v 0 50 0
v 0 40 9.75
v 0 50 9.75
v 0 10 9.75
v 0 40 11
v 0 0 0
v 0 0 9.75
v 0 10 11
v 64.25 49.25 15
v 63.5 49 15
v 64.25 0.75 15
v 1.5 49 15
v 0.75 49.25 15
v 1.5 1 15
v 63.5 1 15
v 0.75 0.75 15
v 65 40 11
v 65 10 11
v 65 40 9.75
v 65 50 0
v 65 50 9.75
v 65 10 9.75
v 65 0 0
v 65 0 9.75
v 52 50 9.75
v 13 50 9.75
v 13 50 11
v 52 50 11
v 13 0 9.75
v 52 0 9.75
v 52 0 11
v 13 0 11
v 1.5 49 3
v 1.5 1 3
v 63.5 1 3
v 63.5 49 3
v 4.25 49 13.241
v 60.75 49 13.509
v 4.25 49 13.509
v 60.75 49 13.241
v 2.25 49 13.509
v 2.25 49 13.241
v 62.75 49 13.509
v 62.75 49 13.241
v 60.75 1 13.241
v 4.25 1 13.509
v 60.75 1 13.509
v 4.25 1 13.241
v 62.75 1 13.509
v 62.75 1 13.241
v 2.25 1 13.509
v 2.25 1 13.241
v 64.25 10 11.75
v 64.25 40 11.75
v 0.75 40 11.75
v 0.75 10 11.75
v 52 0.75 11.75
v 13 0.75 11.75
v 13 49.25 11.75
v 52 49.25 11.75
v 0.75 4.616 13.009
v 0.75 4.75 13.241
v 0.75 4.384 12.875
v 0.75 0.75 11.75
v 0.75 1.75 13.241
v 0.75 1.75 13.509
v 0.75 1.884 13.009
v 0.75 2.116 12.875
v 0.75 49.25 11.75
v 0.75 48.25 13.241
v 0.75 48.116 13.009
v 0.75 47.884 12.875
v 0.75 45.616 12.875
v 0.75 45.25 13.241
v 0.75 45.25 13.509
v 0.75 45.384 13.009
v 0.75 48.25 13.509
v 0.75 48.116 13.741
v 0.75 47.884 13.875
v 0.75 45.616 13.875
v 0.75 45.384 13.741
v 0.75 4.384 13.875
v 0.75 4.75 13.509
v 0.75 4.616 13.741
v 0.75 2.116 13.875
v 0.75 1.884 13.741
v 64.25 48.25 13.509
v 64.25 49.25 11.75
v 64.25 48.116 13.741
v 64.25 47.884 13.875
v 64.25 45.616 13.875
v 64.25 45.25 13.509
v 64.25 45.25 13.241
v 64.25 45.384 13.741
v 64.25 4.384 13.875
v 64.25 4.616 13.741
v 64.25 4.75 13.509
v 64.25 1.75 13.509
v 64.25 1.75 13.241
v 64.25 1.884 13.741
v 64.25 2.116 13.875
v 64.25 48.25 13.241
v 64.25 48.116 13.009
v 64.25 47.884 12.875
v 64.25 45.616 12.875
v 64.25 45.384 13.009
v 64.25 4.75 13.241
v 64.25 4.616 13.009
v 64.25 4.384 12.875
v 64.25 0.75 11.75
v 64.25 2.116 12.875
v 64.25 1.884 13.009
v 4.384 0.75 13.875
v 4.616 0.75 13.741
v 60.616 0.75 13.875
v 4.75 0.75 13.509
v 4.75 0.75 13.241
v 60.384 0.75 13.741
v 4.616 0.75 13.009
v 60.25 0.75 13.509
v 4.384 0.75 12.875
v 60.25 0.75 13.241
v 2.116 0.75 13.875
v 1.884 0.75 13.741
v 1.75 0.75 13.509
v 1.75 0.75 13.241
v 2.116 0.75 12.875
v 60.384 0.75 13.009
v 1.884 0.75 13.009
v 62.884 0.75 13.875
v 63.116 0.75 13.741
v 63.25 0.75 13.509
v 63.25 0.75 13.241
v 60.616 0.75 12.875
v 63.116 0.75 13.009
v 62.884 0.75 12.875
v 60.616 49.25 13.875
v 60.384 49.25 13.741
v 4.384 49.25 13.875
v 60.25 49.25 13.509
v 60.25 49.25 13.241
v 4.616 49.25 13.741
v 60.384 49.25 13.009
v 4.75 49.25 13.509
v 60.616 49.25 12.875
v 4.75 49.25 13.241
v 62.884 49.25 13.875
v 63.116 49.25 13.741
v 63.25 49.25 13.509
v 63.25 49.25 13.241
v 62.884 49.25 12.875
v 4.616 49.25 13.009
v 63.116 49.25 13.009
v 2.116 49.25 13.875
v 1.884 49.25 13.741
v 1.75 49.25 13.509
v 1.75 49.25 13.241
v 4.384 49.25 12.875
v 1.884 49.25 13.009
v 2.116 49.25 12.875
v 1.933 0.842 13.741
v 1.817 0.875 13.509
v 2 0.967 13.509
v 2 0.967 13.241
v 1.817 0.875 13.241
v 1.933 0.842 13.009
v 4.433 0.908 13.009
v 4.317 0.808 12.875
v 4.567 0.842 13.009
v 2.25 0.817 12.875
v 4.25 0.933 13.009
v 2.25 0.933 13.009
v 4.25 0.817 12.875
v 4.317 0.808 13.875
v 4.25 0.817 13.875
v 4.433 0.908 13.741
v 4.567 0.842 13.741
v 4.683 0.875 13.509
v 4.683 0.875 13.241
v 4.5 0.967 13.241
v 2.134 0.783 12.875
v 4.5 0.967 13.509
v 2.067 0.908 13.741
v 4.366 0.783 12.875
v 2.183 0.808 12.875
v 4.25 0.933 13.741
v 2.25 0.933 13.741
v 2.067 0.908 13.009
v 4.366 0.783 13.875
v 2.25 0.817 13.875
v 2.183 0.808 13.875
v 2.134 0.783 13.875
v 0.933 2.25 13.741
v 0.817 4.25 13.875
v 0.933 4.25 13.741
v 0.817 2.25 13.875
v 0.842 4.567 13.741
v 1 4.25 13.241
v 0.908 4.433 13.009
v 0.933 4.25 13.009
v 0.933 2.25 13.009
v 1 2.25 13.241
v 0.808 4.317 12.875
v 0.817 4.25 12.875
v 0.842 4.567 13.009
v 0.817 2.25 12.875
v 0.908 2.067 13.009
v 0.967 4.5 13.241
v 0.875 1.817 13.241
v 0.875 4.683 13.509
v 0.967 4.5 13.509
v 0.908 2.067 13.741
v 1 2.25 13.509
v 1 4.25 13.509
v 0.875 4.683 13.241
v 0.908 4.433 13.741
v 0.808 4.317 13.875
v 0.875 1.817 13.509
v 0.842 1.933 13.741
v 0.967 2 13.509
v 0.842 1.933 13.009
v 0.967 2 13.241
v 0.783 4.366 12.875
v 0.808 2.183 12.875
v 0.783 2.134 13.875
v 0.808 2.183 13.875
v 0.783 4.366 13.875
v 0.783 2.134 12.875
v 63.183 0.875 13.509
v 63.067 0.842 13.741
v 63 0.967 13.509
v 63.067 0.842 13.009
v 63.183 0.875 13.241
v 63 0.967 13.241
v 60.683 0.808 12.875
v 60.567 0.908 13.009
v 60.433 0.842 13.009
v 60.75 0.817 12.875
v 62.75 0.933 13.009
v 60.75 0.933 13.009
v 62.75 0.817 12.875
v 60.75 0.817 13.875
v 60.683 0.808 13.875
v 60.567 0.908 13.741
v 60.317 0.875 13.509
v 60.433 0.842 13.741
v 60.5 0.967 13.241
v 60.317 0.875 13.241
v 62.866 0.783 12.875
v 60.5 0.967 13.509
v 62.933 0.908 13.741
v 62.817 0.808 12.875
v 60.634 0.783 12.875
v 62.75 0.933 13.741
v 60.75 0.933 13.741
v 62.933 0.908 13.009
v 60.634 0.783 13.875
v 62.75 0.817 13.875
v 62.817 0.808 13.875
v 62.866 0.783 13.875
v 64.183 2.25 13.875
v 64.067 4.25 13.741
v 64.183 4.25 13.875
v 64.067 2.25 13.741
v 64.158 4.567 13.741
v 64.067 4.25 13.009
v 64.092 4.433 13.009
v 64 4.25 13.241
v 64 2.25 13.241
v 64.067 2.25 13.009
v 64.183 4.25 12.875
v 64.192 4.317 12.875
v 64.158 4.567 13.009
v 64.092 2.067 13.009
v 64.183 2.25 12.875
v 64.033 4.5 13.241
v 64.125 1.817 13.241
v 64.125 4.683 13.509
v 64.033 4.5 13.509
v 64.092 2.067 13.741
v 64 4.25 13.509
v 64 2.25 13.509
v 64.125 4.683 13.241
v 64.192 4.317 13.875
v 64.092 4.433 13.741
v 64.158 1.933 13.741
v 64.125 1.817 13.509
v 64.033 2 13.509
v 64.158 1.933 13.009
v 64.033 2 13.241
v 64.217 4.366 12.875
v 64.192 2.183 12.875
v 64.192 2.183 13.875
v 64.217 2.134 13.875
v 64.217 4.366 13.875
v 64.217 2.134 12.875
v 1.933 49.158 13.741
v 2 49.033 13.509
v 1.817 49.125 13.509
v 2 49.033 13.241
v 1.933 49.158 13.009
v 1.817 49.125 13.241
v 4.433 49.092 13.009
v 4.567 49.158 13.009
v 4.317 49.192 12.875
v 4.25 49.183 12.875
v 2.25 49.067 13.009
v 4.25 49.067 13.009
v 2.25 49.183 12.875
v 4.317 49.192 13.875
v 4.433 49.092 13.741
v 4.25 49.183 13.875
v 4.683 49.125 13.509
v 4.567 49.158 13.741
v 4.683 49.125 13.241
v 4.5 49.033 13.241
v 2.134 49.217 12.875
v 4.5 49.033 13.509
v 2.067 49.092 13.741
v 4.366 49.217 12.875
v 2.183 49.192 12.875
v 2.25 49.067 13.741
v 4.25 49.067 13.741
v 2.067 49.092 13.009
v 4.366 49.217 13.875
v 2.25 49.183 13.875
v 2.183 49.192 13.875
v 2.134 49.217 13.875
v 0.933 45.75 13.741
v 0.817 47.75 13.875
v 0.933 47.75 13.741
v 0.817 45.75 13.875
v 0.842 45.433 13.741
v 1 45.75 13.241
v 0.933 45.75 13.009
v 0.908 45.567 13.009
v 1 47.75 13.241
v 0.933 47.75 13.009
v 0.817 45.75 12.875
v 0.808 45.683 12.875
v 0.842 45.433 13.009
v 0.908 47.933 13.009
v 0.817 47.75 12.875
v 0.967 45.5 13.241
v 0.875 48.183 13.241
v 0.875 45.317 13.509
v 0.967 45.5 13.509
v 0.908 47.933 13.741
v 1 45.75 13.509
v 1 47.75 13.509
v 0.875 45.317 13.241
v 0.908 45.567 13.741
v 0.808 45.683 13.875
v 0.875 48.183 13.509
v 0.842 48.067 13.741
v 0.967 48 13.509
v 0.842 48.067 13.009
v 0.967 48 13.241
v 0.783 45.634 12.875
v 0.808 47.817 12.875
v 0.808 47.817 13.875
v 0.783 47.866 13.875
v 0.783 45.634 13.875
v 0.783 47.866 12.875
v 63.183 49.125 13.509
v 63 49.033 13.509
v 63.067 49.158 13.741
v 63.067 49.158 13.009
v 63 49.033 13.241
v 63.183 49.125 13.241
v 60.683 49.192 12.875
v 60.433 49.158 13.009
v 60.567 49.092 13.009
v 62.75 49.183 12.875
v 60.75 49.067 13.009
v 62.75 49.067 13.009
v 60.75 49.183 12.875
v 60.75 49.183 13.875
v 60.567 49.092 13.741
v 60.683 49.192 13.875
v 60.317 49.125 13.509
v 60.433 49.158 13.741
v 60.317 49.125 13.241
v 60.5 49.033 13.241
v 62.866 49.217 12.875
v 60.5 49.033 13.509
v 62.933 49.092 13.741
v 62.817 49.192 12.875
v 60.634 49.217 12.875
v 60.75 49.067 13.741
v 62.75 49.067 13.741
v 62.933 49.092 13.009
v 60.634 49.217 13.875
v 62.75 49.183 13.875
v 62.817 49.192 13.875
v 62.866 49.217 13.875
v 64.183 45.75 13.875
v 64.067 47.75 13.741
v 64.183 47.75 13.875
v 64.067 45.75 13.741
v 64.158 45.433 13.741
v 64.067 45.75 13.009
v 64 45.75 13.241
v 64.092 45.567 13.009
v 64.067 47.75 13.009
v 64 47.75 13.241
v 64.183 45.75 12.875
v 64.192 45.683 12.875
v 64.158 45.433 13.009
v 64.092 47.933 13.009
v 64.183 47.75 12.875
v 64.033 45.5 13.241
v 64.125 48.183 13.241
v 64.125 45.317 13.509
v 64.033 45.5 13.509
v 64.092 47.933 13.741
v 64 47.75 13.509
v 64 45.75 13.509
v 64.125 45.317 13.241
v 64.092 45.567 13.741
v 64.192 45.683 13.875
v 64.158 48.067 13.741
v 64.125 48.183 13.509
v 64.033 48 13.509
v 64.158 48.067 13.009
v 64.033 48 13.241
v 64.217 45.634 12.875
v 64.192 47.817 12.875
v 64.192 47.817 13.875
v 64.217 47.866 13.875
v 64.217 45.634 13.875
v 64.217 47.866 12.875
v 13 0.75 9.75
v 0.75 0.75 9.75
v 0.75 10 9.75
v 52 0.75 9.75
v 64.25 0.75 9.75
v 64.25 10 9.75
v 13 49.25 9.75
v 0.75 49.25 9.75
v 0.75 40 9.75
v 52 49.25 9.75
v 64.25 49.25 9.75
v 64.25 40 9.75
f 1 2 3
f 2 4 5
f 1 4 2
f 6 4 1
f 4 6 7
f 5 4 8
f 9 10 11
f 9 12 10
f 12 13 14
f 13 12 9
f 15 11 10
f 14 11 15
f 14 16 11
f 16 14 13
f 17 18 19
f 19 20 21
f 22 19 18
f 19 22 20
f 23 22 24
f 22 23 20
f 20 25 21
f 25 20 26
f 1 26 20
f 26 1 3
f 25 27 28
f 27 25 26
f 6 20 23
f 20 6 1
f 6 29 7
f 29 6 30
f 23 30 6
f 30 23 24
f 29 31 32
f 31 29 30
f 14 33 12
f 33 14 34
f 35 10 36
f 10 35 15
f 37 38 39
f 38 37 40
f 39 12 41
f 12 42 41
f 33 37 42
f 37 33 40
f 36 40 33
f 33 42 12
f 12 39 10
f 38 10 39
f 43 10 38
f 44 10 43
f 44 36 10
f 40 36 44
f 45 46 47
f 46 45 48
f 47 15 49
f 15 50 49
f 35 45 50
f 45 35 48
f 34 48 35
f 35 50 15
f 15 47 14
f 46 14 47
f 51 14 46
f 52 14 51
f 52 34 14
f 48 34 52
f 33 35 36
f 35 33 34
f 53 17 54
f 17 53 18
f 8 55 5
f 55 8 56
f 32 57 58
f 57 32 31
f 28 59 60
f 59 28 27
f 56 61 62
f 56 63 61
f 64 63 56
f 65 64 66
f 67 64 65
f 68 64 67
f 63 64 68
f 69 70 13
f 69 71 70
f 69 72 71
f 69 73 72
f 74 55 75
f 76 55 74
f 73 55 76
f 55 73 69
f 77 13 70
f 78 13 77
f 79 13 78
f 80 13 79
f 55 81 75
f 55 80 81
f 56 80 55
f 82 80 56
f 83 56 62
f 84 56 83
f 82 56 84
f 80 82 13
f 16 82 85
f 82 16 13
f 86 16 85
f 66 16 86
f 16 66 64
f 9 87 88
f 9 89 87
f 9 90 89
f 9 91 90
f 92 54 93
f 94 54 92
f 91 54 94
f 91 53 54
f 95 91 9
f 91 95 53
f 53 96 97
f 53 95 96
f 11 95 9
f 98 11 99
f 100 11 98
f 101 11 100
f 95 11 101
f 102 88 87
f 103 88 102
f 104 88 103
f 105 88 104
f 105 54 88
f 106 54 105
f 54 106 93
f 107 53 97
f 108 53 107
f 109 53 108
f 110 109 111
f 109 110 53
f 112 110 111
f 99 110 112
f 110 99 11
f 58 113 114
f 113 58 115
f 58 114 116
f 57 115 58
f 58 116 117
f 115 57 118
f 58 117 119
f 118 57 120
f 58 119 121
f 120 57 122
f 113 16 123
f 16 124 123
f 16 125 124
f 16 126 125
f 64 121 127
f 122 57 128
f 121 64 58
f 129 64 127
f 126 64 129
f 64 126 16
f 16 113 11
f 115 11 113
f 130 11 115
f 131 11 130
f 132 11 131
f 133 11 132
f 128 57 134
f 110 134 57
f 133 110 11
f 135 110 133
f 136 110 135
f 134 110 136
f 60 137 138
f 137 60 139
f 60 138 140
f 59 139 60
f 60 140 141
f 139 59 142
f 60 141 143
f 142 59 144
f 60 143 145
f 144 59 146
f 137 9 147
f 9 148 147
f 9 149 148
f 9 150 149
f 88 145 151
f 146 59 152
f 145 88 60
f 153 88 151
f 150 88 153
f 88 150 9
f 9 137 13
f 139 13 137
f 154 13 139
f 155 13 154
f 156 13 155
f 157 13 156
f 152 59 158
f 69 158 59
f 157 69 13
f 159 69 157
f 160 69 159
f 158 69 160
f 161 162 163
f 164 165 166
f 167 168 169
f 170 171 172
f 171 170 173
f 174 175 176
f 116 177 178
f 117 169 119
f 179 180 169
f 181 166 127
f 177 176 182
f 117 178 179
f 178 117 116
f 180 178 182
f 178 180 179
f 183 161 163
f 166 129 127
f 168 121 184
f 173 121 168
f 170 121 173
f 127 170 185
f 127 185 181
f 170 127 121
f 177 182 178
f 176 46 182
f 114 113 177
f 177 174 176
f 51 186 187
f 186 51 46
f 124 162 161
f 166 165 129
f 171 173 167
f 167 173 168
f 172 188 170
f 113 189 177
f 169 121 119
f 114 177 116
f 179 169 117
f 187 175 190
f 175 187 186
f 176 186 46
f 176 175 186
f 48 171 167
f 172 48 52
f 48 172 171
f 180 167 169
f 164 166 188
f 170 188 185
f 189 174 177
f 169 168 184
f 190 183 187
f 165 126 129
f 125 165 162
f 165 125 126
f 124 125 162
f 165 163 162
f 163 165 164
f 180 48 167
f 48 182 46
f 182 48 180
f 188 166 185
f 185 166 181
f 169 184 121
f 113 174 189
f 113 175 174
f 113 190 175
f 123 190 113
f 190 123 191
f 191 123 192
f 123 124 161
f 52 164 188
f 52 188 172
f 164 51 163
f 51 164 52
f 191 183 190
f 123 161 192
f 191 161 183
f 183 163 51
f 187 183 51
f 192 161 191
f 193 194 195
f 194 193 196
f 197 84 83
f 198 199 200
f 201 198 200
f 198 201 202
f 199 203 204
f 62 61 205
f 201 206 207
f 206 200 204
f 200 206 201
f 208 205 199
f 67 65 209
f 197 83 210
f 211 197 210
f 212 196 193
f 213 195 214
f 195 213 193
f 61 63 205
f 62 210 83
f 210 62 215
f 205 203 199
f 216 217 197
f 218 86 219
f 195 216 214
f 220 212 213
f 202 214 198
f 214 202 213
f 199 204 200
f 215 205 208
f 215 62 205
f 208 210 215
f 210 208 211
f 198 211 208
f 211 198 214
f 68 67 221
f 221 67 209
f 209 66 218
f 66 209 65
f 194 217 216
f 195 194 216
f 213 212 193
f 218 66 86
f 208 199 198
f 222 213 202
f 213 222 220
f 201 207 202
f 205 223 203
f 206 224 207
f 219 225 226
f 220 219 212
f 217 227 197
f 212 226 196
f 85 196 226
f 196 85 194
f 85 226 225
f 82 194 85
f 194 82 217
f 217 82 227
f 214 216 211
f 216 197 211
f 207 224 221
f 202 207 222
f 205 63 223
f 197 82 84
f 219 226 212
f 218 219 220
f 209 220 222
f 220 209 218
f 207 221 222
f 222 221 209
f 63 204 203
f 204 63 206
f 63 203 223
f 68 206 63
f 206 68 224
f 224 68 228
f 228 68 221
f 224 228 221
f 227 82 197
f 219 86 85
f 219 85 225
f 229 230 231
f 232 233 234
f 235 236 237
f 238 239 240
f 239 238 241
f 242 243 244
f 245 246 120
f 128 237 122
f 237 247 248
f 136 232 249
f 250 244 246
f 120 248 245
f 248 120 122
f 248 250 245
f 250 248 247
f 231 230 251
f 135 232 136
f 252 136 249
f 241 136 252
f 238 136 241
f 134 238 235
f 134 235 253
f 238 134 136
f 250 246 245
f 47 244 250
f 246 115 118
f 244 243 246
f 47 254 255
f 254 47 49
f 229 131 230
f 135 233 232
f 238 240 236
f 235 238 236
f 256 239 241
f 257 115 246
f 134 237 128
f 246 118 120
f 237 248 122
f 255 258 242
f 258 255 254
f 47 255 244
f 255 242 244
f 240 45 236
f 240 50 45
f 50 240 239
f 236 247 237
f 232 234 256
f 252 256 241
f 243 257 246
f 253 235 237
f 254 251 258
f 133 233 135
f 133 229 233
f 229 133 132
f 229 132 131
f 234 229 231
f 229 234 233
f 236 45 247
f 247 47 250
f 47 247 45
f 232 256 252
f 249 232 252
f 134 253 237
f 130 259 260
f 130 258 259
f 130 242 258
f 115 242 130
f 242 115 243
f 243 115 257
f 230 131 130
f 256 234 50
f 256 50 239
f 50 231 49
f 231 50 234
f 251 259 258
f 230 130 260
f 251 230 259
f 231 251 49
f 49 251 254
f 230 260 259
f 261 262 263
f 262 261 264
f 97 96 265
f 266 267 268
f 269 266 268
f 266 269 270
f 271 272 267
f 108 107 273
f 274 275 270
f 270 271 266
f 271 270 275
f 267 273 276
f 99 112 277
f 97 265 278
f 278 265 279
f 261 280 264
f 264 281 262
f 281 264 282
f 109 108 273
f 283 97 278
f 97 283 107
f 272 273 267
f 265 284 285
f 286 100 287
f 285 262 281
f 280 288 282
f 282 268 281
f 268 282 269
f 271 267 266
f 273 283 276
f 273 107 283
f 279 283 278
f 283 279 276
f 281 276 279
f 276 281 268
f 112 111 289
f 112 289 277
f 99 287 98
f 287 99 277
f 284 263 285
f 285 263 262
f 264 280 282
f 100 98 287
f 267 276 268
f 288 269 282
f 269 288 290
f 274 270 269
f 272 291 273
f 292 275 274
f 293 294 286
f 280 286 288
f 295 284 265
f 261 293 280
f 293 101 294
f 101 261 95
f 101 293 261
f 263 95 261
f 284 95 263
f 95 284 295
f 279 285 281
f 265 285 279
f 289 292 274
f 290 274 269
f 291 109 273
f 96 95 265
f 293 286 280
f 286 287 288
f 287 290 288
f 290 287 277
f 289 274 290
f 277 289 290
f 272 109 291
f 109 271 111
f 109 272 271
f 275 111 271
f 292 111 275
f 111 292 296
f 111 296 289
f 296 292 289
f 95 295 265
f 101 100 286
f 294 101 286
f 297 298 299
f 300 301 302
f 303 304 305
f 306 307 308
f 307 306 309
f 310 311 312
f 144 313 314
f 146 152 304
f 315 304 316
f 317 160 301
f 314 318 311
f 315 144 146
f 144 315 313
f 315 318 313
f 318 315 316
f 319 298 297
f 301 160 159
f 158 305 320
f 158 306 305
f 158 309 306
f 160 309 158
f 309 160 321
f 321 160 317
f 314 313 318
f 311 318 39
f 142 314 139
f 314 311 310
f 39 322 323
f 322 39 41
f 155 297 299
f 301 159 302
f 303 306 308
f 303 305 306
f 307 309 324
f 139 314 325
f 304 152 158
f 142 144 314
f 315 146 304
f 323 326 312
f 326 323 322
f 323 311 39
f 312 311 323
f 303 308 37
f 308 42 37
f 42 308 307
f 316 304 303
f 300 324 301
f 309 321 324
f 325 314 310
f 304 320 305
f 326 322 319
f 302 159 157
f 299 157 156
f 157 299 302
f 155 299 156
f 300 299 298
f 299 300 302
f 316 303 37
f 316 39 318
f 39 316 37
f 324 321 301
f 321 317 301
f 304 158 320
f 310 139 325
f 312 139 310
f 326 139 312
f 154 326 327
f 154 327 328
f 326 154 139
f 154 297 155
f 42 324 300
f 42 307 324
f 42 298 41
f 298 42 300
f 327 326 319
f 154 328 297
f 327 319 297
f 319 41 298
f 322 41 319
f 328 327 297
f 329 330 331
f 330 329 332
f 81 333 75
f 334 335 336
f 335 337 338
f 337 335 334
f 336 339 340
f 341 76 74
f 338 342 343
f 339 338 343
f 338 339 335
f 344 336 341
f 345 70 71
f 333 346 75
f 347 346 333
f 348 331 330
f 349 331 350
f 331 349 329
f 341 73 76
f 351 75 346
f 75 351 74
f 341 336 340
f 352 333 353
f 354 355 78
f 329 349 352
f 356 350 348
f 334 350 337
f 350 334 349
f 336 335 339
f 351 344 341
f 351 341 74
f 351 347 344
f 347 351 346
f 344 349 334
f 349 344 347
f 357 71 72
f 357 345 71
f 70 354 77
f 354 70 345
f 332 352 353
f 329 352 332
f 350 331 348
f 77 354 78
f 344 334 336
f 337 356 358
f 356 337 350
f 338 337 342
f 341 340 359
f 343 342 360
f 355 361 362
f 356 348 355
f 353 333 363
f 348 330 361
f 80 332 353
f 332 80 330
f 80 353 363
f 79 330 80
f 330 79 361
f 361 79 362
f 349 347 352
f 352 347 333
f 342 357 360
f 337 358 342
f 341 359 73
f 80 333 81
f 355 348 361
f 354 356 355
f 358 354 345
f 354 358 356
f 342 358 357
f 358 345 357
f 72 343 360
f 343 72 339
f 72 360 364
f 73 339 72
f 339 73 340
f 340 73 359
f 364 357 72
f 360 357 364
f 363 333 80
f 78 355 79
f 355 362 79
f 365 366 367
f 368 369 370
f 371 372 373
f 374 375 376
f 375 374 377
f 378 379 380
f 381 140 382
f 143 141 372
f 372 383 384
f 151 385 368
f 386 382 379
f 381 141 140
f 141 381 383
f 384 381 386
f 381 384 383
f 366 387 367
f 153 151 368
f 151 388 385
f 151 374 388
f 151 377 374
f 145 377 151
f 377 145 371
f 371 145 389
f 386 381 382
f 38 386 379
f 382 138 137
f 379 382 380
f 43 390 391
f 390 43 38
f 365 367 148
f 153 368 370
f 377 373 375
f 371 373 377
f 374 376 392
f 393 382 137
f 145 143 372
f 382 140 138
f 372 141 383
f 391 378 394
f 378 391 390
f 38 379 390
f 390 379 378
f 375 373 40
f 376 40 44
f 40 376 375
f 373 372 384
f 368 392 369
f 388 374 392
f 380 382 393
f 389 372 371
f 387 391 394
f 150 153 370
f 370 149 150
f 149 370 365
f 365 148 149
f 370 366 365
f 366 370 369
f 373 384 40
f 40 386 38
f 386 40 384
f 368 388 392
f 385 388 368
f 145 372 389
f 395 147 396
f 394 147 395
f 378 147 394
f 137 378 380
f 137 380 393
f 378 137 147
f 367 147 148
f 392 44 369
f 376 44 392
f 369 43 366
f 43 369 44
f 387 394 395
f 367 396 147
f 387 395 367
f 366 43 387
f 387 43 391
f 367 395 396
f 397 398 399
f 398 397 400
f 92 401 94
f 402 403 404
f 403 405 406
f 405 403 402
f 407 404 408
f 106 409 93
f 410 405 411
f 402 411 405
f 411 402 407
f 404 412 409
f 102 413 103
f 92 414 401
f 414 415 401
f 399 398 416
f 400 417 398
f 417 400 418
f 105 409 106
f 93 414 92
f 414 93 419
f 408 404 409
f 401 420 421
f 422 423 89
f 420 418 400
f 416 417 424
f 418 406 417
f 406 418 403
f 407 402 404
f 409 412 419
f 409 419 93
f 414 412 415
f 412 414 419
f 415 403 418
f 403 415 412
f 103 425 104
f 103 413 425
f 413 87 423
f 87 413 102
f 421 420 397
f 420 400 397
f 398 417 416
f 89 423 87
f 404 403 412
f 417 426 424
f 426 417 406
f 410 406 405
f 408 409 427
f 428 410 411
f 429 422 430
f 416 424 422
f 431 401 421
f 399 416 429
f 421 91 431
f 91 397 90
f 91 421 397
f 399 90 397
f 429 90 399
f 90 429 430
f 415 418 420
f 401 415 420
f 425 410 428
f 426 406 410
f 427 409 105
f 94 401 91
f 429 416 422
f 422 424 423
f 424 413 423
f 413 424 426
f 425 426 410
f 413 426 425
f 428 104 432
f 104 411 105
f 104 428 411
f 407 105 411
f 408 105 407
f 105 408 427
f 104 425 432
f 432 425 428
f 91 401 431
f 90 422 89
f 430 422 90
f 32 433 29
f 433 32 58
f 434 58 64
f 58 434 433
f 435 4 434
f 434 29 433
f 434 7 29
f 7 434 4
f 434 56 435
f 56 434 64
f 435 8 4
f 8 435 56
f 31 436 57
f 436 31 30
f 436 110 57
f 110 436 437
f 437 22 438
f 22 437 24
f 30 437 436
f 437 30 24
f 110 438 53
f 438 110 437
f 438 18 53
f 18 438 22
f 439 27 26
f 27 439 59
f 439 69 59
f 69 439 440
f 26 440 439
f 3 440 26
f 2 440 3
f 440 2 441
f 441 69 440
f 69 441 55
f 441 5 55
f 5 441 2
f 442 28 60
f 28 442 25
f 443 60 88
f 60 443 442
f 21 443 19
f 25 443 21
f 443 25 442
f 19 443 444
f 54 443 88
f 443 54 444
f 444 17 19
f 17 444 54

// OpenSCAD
include <boardgame_insert_toolkit_lib.2.scad>;

// determines whether lids are output.
g_b_print_lid = false;

// determines whether boxes are output.
g_b_print_box = true; 

// Focus on one box
// g_isolated_print_box = ""; 

// Used to visualize how all of the boxes fit together. 
g_b_visualization = false;          
        
// this is the outer wall thickness. 
//Default = 1.5mm
g_wall_thickness = 1.5;

// The tolerance value is extra space put between planes of the lid and box that fit together.
// Increase the tolerance to loosen the fit and decrease it to tighten it.
//
// Note that the tolerance is applied exclusively to the lid.
// So if the lid is too tight or too loose, change this value ( up for looser fit, down for tighter fit ) and 
// you only need to reprint the lid.
// 
// The exception is the stackable box, where the bottom of the box is the lid of the box below,
// in which case the tolerance also affects that box bottom.
//
g_tolerance = 0.15;

// This adjusts the position of the lid detents downward. 
// The larger the value, the bigger the gap between the lid and the box.
g_tolerance_detents_pos = 0.1;

data =
[
    [   "jf_playerbox",
        [
            [ BOX_SIZE_XYZ,                                     [65, 50, 15] ],
            [ BOX_LID,
                [
                    [ LID_SOLID_B, f],
                    [LID_FIT_UNDER_B, f]
                ]
            ],
            [ BOX_COMPONENT,
                [
                    [CMP_COMPARTMENT_SIZE_XYZ,  [ 62, 48, 12] ],
                ]
            ],                            
        ]
    ],
];


MakeAll();
